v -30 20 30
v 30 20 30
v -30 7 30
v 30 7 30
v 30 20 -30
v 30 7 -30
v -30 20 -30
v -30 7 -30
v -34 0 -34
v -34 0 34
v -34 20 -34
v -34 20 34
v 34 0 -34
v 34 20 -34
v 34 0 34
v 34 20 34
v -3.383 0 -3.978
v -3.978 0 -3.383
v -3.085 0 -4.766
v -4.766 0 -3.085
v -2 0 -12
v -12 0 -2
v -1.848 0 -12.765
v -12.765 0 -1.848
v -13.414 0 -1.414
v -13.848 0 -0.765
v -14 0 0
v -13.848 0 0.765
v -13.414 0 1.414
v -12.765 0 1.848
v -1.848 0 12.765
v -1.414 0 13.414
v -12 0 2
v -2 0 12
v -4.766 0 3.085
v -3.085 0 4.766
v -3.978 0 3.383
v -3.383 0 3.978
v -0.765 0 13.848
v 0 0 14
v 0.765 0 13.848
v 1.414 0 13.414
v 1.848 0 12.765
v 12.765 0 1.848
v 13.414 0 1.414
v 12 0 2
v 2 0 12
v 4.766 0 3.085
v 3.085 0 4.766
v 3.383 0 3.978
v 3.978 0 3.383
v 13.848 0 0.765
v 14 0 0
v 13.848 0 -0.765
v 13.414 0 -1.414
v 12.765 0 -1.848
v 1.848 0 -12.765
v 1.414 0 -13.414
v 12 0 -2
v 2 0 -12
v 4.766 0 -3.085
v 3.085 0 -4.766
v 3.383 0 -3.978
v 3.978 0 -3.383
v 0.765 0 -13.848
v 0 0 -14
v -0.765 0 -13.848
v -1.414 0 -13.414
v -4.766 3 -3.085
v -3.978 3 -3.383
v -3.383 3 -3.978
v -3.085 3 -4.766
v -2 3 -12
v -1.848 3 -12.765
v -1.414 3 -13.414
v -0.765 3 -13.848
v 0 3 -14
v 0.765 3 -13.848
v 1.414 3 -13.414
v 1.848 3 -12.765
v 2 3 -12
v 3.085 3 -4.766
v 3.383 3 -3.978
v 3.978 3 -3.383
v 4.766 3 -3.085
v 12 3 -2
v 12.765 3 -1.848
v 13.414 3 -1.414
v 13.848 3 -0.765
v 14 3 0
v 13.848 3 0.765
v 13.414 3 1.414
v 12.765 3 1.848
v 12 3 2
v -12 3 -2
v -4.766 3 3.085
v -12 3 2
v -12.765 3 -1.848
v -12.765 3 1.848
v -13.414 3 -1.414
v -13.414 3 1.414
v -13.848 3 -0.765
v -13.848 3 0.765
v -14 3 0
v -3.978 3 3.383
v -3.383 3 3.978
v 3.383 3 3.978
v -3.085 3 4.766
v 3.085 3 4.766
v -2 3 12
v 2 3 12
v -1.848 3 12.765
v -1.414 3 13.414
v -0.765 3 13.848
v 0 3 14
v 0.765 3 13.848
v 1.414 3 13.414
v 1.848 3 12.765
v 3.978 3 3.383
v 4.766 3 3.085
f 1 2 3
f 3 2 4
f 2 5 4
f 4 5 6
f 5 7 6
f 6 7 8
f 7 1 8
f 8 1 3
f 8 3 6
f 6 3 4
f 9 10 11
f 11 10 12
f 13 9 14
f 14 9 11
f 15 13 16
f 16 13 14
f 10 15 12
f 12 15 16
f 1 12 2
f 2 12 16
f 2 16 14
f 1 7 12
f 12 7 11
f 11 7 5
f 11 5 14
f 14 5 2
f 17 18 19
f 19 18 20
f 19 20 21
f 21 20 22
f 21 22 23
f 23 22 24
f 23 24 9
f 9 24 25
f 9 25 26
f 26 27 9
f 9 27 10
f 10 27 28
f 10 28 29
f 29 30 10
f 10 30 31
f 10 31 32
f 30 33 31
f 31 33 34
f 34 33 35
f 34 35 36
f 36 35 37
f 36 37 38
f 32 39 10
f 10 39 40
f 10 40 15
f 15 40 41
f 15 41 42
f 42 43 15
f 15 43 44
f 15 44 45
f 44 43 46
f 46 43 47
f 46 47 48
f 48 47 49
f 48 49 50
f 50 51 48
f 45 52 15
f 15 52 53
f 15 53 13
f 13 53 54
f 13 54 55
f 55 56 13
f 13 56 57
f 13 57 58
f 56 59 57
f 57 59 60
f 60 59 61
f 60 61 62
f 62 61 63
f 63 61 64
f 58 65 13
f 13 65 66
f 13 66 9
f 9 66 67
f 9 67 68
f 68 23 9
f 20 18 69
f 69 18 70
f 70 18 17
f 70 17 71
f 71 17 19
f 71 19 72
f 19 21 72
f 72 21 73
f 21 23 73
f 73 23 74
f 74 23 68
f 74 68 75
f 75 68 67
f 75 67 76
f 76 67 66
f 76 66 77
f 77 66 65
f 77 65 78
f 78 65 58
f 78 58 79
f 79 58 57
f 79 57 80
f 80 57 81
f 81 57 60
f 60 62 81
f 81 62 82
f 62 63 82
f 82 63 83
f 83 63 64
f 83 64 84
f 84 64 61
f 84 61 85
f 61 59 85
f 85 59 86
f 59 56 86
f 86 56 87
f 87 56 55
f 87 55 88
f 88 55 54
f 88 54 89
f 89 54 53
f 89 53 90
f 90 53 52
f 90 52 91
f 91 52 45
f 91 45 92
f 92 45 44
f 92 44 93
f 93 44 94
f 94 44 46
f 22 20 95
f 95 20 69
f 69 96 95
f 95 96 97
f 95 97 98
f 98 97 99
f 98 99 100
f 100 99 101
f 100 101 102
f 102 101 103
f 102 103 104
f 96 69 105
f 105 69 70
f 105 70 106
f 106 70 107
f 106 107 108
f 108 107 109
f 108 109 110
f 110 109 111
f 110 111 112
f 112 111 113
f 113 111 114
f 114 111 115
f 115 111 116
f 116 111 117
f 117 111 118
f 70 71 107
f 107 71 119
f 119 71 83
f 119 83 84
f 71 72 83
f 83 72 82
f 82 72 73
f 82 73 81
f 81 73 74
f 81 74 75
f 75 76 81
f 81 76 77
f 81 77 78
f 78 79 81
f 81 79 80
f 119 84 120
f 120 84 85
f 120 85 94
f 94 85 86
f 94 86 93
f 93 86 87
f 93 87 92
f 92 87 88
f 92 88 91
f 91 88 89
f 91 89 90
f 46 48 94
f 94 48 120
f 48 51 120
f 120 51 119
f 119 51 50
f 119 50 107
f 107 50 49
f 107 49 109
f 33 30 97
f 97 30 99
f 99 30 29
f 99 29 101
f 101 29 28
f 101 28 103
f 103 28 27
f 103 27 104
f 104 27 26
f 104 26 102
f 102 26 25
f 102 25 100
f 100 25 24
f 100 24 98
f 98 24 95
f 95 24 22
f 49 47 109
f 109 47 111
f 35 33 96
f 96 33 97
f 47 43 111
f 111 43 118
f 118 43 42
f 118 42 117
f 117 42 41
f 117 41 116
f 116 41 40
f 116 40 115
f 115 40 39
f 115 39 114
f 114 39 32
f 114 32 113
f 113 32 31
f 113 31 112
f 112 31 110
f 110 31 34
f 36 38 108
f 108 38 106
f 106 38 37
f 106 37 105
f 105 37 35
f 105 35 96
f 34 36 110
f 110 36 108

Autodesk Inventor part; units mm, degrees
sketch "Skizze1" plane through (0, 0, 0) normal (0, 1, 0) x (-1, 0, 0)
  line L0 (34, -34) -> (-34, -34)
  line L1 (-34, -34) -> (-34, 34)
  line L2 (-34, 34) -> (34, 34)
  line L3 (34, 34) -> (34, -34)
  line L4 (0, -47.6) -> (0, 47.6) projected
  line L5 (47.6, 0) -> (-47.6, 0) projected
  point P0 (0, 0)
  dimension "d0" = 68
  dimension "d1" = 68
extrude "Extrusion1" add sketch "Skizze1" along normal blind 20
sketch "Skizze2" plane through (0, 20, 0) normal (0, 1, 0) x (1, 0, 0)
  line L0 (-30, 30) -> (30, 30)
  line L1 (30, 30) -> (30, -30)
  line L2 (30, -30) -> (-30, -30)
  line L3 (-30, -30) -> (-30, 30)
  line L4 (-47.6, 0) -> (47.6, 0) projected
  line L5 (0, 47.6) -> (0, -47.6) projected
  line L6 (-34, 34) -> (-34, -34) projected
  line L7 (34, -34) -> (34, 34) projected
  point P0 (0, 0)
  dimension "d4" = 60
  dimension "d5" = 60
  dimension "d6" = 4
  dimension "d7" = 4
extrude "Extrusion2" cut sketch "Skizze2" against normal blind 13
sketch "Skizze4" plane through (0, 0, 0) normal (0, -1, 0) x (1, 0, 0)
  line L0 (0, 12) -> (0, -12) construction
  line L1 (-2, 12) -> (-2, -12)
  line L2 (2, -12) -> (2, 12)
  arc A0 (2, 12) -> (-2, 12) centre (0, 12) ccw
  arc A1 (-2, -12) -> (2, -12) centre (0, -12) ccw
  line L3 (-47.6, 0) -> (47.6, 0) projected
  line L4 (12, 0) -> (-12, 0) construction
  line L5 (12, 2) -> (-12, 2)
  line L6 (-12, -2) -> (12, -2)
  arc A2 (12, -2) -> (12, 2) centre (12, 0) ccw
  arc A3 (-12, 2) -> (-12, -2) centre (-12, 0) ccw
  line L7 (0, -47.6) -> (0, 47.6) projected
  line L8 (-3.0851, 4.7663) -> (-2, 12)
  line L9 (3.0851, 4.7663) -> (2, 12)
  line L10 (-3.0851, -4.7663) -> (-2, -12)
  line L11 (3.0851, -4.7663) -> (2, -12)
  line L12 (-4.7663, 3.0851) -> (-12, 2)
  line L13 (-4.7663, -3.0851) -> (-12, -2)
  line L14 (4.7663, 3.0851) -> (12, 2)
  line L15 (4.7663, -3.0851) -> (12, -2)
  arc A4 (-4.7663, 3.0851) -> (-3.0851, 4.7663) centre (-5.0629, 5.0629) ccw
  arc A5 (3.0851, 4.7663) -> (4.7663, 3.0851) centre (5.0629, 5.0629) ccw
  arc A6 (4.7663, -3.0851) -> (3.0851, -4.7663) centre (5.0629, -5.0629) ccw
  arc A7 (-3.0851, -4.7663) -> (-4.7663, -3.0851) centre (-5.0629, -5.0629) ccw
  point P0 (0, 0)
  point P1 (0, 0)
  point P2 (0, 0)
  point P3 (-3.5, 2)
  point P4 (3.5, 2)
  point P5 (-3.5, -2)
  point P6 (3.5, -2)
  point P7 (-2, 3.5)
  point P8 (-2, -3.5)
  point P9 (2, 3.5)
  point P10 (2, -3.5)
  dimension "d30" = 4
  dimension "d31" = 24
  dimension "d32" = 2
  dimension "d33" = 4
  dimension "d34" = 24
  dimension "d35" = 2
  dimension "d36" = 2
extrude "Extrusion4" cut sketch "Skizze4" against normal blind 3
properties part number "Base"
